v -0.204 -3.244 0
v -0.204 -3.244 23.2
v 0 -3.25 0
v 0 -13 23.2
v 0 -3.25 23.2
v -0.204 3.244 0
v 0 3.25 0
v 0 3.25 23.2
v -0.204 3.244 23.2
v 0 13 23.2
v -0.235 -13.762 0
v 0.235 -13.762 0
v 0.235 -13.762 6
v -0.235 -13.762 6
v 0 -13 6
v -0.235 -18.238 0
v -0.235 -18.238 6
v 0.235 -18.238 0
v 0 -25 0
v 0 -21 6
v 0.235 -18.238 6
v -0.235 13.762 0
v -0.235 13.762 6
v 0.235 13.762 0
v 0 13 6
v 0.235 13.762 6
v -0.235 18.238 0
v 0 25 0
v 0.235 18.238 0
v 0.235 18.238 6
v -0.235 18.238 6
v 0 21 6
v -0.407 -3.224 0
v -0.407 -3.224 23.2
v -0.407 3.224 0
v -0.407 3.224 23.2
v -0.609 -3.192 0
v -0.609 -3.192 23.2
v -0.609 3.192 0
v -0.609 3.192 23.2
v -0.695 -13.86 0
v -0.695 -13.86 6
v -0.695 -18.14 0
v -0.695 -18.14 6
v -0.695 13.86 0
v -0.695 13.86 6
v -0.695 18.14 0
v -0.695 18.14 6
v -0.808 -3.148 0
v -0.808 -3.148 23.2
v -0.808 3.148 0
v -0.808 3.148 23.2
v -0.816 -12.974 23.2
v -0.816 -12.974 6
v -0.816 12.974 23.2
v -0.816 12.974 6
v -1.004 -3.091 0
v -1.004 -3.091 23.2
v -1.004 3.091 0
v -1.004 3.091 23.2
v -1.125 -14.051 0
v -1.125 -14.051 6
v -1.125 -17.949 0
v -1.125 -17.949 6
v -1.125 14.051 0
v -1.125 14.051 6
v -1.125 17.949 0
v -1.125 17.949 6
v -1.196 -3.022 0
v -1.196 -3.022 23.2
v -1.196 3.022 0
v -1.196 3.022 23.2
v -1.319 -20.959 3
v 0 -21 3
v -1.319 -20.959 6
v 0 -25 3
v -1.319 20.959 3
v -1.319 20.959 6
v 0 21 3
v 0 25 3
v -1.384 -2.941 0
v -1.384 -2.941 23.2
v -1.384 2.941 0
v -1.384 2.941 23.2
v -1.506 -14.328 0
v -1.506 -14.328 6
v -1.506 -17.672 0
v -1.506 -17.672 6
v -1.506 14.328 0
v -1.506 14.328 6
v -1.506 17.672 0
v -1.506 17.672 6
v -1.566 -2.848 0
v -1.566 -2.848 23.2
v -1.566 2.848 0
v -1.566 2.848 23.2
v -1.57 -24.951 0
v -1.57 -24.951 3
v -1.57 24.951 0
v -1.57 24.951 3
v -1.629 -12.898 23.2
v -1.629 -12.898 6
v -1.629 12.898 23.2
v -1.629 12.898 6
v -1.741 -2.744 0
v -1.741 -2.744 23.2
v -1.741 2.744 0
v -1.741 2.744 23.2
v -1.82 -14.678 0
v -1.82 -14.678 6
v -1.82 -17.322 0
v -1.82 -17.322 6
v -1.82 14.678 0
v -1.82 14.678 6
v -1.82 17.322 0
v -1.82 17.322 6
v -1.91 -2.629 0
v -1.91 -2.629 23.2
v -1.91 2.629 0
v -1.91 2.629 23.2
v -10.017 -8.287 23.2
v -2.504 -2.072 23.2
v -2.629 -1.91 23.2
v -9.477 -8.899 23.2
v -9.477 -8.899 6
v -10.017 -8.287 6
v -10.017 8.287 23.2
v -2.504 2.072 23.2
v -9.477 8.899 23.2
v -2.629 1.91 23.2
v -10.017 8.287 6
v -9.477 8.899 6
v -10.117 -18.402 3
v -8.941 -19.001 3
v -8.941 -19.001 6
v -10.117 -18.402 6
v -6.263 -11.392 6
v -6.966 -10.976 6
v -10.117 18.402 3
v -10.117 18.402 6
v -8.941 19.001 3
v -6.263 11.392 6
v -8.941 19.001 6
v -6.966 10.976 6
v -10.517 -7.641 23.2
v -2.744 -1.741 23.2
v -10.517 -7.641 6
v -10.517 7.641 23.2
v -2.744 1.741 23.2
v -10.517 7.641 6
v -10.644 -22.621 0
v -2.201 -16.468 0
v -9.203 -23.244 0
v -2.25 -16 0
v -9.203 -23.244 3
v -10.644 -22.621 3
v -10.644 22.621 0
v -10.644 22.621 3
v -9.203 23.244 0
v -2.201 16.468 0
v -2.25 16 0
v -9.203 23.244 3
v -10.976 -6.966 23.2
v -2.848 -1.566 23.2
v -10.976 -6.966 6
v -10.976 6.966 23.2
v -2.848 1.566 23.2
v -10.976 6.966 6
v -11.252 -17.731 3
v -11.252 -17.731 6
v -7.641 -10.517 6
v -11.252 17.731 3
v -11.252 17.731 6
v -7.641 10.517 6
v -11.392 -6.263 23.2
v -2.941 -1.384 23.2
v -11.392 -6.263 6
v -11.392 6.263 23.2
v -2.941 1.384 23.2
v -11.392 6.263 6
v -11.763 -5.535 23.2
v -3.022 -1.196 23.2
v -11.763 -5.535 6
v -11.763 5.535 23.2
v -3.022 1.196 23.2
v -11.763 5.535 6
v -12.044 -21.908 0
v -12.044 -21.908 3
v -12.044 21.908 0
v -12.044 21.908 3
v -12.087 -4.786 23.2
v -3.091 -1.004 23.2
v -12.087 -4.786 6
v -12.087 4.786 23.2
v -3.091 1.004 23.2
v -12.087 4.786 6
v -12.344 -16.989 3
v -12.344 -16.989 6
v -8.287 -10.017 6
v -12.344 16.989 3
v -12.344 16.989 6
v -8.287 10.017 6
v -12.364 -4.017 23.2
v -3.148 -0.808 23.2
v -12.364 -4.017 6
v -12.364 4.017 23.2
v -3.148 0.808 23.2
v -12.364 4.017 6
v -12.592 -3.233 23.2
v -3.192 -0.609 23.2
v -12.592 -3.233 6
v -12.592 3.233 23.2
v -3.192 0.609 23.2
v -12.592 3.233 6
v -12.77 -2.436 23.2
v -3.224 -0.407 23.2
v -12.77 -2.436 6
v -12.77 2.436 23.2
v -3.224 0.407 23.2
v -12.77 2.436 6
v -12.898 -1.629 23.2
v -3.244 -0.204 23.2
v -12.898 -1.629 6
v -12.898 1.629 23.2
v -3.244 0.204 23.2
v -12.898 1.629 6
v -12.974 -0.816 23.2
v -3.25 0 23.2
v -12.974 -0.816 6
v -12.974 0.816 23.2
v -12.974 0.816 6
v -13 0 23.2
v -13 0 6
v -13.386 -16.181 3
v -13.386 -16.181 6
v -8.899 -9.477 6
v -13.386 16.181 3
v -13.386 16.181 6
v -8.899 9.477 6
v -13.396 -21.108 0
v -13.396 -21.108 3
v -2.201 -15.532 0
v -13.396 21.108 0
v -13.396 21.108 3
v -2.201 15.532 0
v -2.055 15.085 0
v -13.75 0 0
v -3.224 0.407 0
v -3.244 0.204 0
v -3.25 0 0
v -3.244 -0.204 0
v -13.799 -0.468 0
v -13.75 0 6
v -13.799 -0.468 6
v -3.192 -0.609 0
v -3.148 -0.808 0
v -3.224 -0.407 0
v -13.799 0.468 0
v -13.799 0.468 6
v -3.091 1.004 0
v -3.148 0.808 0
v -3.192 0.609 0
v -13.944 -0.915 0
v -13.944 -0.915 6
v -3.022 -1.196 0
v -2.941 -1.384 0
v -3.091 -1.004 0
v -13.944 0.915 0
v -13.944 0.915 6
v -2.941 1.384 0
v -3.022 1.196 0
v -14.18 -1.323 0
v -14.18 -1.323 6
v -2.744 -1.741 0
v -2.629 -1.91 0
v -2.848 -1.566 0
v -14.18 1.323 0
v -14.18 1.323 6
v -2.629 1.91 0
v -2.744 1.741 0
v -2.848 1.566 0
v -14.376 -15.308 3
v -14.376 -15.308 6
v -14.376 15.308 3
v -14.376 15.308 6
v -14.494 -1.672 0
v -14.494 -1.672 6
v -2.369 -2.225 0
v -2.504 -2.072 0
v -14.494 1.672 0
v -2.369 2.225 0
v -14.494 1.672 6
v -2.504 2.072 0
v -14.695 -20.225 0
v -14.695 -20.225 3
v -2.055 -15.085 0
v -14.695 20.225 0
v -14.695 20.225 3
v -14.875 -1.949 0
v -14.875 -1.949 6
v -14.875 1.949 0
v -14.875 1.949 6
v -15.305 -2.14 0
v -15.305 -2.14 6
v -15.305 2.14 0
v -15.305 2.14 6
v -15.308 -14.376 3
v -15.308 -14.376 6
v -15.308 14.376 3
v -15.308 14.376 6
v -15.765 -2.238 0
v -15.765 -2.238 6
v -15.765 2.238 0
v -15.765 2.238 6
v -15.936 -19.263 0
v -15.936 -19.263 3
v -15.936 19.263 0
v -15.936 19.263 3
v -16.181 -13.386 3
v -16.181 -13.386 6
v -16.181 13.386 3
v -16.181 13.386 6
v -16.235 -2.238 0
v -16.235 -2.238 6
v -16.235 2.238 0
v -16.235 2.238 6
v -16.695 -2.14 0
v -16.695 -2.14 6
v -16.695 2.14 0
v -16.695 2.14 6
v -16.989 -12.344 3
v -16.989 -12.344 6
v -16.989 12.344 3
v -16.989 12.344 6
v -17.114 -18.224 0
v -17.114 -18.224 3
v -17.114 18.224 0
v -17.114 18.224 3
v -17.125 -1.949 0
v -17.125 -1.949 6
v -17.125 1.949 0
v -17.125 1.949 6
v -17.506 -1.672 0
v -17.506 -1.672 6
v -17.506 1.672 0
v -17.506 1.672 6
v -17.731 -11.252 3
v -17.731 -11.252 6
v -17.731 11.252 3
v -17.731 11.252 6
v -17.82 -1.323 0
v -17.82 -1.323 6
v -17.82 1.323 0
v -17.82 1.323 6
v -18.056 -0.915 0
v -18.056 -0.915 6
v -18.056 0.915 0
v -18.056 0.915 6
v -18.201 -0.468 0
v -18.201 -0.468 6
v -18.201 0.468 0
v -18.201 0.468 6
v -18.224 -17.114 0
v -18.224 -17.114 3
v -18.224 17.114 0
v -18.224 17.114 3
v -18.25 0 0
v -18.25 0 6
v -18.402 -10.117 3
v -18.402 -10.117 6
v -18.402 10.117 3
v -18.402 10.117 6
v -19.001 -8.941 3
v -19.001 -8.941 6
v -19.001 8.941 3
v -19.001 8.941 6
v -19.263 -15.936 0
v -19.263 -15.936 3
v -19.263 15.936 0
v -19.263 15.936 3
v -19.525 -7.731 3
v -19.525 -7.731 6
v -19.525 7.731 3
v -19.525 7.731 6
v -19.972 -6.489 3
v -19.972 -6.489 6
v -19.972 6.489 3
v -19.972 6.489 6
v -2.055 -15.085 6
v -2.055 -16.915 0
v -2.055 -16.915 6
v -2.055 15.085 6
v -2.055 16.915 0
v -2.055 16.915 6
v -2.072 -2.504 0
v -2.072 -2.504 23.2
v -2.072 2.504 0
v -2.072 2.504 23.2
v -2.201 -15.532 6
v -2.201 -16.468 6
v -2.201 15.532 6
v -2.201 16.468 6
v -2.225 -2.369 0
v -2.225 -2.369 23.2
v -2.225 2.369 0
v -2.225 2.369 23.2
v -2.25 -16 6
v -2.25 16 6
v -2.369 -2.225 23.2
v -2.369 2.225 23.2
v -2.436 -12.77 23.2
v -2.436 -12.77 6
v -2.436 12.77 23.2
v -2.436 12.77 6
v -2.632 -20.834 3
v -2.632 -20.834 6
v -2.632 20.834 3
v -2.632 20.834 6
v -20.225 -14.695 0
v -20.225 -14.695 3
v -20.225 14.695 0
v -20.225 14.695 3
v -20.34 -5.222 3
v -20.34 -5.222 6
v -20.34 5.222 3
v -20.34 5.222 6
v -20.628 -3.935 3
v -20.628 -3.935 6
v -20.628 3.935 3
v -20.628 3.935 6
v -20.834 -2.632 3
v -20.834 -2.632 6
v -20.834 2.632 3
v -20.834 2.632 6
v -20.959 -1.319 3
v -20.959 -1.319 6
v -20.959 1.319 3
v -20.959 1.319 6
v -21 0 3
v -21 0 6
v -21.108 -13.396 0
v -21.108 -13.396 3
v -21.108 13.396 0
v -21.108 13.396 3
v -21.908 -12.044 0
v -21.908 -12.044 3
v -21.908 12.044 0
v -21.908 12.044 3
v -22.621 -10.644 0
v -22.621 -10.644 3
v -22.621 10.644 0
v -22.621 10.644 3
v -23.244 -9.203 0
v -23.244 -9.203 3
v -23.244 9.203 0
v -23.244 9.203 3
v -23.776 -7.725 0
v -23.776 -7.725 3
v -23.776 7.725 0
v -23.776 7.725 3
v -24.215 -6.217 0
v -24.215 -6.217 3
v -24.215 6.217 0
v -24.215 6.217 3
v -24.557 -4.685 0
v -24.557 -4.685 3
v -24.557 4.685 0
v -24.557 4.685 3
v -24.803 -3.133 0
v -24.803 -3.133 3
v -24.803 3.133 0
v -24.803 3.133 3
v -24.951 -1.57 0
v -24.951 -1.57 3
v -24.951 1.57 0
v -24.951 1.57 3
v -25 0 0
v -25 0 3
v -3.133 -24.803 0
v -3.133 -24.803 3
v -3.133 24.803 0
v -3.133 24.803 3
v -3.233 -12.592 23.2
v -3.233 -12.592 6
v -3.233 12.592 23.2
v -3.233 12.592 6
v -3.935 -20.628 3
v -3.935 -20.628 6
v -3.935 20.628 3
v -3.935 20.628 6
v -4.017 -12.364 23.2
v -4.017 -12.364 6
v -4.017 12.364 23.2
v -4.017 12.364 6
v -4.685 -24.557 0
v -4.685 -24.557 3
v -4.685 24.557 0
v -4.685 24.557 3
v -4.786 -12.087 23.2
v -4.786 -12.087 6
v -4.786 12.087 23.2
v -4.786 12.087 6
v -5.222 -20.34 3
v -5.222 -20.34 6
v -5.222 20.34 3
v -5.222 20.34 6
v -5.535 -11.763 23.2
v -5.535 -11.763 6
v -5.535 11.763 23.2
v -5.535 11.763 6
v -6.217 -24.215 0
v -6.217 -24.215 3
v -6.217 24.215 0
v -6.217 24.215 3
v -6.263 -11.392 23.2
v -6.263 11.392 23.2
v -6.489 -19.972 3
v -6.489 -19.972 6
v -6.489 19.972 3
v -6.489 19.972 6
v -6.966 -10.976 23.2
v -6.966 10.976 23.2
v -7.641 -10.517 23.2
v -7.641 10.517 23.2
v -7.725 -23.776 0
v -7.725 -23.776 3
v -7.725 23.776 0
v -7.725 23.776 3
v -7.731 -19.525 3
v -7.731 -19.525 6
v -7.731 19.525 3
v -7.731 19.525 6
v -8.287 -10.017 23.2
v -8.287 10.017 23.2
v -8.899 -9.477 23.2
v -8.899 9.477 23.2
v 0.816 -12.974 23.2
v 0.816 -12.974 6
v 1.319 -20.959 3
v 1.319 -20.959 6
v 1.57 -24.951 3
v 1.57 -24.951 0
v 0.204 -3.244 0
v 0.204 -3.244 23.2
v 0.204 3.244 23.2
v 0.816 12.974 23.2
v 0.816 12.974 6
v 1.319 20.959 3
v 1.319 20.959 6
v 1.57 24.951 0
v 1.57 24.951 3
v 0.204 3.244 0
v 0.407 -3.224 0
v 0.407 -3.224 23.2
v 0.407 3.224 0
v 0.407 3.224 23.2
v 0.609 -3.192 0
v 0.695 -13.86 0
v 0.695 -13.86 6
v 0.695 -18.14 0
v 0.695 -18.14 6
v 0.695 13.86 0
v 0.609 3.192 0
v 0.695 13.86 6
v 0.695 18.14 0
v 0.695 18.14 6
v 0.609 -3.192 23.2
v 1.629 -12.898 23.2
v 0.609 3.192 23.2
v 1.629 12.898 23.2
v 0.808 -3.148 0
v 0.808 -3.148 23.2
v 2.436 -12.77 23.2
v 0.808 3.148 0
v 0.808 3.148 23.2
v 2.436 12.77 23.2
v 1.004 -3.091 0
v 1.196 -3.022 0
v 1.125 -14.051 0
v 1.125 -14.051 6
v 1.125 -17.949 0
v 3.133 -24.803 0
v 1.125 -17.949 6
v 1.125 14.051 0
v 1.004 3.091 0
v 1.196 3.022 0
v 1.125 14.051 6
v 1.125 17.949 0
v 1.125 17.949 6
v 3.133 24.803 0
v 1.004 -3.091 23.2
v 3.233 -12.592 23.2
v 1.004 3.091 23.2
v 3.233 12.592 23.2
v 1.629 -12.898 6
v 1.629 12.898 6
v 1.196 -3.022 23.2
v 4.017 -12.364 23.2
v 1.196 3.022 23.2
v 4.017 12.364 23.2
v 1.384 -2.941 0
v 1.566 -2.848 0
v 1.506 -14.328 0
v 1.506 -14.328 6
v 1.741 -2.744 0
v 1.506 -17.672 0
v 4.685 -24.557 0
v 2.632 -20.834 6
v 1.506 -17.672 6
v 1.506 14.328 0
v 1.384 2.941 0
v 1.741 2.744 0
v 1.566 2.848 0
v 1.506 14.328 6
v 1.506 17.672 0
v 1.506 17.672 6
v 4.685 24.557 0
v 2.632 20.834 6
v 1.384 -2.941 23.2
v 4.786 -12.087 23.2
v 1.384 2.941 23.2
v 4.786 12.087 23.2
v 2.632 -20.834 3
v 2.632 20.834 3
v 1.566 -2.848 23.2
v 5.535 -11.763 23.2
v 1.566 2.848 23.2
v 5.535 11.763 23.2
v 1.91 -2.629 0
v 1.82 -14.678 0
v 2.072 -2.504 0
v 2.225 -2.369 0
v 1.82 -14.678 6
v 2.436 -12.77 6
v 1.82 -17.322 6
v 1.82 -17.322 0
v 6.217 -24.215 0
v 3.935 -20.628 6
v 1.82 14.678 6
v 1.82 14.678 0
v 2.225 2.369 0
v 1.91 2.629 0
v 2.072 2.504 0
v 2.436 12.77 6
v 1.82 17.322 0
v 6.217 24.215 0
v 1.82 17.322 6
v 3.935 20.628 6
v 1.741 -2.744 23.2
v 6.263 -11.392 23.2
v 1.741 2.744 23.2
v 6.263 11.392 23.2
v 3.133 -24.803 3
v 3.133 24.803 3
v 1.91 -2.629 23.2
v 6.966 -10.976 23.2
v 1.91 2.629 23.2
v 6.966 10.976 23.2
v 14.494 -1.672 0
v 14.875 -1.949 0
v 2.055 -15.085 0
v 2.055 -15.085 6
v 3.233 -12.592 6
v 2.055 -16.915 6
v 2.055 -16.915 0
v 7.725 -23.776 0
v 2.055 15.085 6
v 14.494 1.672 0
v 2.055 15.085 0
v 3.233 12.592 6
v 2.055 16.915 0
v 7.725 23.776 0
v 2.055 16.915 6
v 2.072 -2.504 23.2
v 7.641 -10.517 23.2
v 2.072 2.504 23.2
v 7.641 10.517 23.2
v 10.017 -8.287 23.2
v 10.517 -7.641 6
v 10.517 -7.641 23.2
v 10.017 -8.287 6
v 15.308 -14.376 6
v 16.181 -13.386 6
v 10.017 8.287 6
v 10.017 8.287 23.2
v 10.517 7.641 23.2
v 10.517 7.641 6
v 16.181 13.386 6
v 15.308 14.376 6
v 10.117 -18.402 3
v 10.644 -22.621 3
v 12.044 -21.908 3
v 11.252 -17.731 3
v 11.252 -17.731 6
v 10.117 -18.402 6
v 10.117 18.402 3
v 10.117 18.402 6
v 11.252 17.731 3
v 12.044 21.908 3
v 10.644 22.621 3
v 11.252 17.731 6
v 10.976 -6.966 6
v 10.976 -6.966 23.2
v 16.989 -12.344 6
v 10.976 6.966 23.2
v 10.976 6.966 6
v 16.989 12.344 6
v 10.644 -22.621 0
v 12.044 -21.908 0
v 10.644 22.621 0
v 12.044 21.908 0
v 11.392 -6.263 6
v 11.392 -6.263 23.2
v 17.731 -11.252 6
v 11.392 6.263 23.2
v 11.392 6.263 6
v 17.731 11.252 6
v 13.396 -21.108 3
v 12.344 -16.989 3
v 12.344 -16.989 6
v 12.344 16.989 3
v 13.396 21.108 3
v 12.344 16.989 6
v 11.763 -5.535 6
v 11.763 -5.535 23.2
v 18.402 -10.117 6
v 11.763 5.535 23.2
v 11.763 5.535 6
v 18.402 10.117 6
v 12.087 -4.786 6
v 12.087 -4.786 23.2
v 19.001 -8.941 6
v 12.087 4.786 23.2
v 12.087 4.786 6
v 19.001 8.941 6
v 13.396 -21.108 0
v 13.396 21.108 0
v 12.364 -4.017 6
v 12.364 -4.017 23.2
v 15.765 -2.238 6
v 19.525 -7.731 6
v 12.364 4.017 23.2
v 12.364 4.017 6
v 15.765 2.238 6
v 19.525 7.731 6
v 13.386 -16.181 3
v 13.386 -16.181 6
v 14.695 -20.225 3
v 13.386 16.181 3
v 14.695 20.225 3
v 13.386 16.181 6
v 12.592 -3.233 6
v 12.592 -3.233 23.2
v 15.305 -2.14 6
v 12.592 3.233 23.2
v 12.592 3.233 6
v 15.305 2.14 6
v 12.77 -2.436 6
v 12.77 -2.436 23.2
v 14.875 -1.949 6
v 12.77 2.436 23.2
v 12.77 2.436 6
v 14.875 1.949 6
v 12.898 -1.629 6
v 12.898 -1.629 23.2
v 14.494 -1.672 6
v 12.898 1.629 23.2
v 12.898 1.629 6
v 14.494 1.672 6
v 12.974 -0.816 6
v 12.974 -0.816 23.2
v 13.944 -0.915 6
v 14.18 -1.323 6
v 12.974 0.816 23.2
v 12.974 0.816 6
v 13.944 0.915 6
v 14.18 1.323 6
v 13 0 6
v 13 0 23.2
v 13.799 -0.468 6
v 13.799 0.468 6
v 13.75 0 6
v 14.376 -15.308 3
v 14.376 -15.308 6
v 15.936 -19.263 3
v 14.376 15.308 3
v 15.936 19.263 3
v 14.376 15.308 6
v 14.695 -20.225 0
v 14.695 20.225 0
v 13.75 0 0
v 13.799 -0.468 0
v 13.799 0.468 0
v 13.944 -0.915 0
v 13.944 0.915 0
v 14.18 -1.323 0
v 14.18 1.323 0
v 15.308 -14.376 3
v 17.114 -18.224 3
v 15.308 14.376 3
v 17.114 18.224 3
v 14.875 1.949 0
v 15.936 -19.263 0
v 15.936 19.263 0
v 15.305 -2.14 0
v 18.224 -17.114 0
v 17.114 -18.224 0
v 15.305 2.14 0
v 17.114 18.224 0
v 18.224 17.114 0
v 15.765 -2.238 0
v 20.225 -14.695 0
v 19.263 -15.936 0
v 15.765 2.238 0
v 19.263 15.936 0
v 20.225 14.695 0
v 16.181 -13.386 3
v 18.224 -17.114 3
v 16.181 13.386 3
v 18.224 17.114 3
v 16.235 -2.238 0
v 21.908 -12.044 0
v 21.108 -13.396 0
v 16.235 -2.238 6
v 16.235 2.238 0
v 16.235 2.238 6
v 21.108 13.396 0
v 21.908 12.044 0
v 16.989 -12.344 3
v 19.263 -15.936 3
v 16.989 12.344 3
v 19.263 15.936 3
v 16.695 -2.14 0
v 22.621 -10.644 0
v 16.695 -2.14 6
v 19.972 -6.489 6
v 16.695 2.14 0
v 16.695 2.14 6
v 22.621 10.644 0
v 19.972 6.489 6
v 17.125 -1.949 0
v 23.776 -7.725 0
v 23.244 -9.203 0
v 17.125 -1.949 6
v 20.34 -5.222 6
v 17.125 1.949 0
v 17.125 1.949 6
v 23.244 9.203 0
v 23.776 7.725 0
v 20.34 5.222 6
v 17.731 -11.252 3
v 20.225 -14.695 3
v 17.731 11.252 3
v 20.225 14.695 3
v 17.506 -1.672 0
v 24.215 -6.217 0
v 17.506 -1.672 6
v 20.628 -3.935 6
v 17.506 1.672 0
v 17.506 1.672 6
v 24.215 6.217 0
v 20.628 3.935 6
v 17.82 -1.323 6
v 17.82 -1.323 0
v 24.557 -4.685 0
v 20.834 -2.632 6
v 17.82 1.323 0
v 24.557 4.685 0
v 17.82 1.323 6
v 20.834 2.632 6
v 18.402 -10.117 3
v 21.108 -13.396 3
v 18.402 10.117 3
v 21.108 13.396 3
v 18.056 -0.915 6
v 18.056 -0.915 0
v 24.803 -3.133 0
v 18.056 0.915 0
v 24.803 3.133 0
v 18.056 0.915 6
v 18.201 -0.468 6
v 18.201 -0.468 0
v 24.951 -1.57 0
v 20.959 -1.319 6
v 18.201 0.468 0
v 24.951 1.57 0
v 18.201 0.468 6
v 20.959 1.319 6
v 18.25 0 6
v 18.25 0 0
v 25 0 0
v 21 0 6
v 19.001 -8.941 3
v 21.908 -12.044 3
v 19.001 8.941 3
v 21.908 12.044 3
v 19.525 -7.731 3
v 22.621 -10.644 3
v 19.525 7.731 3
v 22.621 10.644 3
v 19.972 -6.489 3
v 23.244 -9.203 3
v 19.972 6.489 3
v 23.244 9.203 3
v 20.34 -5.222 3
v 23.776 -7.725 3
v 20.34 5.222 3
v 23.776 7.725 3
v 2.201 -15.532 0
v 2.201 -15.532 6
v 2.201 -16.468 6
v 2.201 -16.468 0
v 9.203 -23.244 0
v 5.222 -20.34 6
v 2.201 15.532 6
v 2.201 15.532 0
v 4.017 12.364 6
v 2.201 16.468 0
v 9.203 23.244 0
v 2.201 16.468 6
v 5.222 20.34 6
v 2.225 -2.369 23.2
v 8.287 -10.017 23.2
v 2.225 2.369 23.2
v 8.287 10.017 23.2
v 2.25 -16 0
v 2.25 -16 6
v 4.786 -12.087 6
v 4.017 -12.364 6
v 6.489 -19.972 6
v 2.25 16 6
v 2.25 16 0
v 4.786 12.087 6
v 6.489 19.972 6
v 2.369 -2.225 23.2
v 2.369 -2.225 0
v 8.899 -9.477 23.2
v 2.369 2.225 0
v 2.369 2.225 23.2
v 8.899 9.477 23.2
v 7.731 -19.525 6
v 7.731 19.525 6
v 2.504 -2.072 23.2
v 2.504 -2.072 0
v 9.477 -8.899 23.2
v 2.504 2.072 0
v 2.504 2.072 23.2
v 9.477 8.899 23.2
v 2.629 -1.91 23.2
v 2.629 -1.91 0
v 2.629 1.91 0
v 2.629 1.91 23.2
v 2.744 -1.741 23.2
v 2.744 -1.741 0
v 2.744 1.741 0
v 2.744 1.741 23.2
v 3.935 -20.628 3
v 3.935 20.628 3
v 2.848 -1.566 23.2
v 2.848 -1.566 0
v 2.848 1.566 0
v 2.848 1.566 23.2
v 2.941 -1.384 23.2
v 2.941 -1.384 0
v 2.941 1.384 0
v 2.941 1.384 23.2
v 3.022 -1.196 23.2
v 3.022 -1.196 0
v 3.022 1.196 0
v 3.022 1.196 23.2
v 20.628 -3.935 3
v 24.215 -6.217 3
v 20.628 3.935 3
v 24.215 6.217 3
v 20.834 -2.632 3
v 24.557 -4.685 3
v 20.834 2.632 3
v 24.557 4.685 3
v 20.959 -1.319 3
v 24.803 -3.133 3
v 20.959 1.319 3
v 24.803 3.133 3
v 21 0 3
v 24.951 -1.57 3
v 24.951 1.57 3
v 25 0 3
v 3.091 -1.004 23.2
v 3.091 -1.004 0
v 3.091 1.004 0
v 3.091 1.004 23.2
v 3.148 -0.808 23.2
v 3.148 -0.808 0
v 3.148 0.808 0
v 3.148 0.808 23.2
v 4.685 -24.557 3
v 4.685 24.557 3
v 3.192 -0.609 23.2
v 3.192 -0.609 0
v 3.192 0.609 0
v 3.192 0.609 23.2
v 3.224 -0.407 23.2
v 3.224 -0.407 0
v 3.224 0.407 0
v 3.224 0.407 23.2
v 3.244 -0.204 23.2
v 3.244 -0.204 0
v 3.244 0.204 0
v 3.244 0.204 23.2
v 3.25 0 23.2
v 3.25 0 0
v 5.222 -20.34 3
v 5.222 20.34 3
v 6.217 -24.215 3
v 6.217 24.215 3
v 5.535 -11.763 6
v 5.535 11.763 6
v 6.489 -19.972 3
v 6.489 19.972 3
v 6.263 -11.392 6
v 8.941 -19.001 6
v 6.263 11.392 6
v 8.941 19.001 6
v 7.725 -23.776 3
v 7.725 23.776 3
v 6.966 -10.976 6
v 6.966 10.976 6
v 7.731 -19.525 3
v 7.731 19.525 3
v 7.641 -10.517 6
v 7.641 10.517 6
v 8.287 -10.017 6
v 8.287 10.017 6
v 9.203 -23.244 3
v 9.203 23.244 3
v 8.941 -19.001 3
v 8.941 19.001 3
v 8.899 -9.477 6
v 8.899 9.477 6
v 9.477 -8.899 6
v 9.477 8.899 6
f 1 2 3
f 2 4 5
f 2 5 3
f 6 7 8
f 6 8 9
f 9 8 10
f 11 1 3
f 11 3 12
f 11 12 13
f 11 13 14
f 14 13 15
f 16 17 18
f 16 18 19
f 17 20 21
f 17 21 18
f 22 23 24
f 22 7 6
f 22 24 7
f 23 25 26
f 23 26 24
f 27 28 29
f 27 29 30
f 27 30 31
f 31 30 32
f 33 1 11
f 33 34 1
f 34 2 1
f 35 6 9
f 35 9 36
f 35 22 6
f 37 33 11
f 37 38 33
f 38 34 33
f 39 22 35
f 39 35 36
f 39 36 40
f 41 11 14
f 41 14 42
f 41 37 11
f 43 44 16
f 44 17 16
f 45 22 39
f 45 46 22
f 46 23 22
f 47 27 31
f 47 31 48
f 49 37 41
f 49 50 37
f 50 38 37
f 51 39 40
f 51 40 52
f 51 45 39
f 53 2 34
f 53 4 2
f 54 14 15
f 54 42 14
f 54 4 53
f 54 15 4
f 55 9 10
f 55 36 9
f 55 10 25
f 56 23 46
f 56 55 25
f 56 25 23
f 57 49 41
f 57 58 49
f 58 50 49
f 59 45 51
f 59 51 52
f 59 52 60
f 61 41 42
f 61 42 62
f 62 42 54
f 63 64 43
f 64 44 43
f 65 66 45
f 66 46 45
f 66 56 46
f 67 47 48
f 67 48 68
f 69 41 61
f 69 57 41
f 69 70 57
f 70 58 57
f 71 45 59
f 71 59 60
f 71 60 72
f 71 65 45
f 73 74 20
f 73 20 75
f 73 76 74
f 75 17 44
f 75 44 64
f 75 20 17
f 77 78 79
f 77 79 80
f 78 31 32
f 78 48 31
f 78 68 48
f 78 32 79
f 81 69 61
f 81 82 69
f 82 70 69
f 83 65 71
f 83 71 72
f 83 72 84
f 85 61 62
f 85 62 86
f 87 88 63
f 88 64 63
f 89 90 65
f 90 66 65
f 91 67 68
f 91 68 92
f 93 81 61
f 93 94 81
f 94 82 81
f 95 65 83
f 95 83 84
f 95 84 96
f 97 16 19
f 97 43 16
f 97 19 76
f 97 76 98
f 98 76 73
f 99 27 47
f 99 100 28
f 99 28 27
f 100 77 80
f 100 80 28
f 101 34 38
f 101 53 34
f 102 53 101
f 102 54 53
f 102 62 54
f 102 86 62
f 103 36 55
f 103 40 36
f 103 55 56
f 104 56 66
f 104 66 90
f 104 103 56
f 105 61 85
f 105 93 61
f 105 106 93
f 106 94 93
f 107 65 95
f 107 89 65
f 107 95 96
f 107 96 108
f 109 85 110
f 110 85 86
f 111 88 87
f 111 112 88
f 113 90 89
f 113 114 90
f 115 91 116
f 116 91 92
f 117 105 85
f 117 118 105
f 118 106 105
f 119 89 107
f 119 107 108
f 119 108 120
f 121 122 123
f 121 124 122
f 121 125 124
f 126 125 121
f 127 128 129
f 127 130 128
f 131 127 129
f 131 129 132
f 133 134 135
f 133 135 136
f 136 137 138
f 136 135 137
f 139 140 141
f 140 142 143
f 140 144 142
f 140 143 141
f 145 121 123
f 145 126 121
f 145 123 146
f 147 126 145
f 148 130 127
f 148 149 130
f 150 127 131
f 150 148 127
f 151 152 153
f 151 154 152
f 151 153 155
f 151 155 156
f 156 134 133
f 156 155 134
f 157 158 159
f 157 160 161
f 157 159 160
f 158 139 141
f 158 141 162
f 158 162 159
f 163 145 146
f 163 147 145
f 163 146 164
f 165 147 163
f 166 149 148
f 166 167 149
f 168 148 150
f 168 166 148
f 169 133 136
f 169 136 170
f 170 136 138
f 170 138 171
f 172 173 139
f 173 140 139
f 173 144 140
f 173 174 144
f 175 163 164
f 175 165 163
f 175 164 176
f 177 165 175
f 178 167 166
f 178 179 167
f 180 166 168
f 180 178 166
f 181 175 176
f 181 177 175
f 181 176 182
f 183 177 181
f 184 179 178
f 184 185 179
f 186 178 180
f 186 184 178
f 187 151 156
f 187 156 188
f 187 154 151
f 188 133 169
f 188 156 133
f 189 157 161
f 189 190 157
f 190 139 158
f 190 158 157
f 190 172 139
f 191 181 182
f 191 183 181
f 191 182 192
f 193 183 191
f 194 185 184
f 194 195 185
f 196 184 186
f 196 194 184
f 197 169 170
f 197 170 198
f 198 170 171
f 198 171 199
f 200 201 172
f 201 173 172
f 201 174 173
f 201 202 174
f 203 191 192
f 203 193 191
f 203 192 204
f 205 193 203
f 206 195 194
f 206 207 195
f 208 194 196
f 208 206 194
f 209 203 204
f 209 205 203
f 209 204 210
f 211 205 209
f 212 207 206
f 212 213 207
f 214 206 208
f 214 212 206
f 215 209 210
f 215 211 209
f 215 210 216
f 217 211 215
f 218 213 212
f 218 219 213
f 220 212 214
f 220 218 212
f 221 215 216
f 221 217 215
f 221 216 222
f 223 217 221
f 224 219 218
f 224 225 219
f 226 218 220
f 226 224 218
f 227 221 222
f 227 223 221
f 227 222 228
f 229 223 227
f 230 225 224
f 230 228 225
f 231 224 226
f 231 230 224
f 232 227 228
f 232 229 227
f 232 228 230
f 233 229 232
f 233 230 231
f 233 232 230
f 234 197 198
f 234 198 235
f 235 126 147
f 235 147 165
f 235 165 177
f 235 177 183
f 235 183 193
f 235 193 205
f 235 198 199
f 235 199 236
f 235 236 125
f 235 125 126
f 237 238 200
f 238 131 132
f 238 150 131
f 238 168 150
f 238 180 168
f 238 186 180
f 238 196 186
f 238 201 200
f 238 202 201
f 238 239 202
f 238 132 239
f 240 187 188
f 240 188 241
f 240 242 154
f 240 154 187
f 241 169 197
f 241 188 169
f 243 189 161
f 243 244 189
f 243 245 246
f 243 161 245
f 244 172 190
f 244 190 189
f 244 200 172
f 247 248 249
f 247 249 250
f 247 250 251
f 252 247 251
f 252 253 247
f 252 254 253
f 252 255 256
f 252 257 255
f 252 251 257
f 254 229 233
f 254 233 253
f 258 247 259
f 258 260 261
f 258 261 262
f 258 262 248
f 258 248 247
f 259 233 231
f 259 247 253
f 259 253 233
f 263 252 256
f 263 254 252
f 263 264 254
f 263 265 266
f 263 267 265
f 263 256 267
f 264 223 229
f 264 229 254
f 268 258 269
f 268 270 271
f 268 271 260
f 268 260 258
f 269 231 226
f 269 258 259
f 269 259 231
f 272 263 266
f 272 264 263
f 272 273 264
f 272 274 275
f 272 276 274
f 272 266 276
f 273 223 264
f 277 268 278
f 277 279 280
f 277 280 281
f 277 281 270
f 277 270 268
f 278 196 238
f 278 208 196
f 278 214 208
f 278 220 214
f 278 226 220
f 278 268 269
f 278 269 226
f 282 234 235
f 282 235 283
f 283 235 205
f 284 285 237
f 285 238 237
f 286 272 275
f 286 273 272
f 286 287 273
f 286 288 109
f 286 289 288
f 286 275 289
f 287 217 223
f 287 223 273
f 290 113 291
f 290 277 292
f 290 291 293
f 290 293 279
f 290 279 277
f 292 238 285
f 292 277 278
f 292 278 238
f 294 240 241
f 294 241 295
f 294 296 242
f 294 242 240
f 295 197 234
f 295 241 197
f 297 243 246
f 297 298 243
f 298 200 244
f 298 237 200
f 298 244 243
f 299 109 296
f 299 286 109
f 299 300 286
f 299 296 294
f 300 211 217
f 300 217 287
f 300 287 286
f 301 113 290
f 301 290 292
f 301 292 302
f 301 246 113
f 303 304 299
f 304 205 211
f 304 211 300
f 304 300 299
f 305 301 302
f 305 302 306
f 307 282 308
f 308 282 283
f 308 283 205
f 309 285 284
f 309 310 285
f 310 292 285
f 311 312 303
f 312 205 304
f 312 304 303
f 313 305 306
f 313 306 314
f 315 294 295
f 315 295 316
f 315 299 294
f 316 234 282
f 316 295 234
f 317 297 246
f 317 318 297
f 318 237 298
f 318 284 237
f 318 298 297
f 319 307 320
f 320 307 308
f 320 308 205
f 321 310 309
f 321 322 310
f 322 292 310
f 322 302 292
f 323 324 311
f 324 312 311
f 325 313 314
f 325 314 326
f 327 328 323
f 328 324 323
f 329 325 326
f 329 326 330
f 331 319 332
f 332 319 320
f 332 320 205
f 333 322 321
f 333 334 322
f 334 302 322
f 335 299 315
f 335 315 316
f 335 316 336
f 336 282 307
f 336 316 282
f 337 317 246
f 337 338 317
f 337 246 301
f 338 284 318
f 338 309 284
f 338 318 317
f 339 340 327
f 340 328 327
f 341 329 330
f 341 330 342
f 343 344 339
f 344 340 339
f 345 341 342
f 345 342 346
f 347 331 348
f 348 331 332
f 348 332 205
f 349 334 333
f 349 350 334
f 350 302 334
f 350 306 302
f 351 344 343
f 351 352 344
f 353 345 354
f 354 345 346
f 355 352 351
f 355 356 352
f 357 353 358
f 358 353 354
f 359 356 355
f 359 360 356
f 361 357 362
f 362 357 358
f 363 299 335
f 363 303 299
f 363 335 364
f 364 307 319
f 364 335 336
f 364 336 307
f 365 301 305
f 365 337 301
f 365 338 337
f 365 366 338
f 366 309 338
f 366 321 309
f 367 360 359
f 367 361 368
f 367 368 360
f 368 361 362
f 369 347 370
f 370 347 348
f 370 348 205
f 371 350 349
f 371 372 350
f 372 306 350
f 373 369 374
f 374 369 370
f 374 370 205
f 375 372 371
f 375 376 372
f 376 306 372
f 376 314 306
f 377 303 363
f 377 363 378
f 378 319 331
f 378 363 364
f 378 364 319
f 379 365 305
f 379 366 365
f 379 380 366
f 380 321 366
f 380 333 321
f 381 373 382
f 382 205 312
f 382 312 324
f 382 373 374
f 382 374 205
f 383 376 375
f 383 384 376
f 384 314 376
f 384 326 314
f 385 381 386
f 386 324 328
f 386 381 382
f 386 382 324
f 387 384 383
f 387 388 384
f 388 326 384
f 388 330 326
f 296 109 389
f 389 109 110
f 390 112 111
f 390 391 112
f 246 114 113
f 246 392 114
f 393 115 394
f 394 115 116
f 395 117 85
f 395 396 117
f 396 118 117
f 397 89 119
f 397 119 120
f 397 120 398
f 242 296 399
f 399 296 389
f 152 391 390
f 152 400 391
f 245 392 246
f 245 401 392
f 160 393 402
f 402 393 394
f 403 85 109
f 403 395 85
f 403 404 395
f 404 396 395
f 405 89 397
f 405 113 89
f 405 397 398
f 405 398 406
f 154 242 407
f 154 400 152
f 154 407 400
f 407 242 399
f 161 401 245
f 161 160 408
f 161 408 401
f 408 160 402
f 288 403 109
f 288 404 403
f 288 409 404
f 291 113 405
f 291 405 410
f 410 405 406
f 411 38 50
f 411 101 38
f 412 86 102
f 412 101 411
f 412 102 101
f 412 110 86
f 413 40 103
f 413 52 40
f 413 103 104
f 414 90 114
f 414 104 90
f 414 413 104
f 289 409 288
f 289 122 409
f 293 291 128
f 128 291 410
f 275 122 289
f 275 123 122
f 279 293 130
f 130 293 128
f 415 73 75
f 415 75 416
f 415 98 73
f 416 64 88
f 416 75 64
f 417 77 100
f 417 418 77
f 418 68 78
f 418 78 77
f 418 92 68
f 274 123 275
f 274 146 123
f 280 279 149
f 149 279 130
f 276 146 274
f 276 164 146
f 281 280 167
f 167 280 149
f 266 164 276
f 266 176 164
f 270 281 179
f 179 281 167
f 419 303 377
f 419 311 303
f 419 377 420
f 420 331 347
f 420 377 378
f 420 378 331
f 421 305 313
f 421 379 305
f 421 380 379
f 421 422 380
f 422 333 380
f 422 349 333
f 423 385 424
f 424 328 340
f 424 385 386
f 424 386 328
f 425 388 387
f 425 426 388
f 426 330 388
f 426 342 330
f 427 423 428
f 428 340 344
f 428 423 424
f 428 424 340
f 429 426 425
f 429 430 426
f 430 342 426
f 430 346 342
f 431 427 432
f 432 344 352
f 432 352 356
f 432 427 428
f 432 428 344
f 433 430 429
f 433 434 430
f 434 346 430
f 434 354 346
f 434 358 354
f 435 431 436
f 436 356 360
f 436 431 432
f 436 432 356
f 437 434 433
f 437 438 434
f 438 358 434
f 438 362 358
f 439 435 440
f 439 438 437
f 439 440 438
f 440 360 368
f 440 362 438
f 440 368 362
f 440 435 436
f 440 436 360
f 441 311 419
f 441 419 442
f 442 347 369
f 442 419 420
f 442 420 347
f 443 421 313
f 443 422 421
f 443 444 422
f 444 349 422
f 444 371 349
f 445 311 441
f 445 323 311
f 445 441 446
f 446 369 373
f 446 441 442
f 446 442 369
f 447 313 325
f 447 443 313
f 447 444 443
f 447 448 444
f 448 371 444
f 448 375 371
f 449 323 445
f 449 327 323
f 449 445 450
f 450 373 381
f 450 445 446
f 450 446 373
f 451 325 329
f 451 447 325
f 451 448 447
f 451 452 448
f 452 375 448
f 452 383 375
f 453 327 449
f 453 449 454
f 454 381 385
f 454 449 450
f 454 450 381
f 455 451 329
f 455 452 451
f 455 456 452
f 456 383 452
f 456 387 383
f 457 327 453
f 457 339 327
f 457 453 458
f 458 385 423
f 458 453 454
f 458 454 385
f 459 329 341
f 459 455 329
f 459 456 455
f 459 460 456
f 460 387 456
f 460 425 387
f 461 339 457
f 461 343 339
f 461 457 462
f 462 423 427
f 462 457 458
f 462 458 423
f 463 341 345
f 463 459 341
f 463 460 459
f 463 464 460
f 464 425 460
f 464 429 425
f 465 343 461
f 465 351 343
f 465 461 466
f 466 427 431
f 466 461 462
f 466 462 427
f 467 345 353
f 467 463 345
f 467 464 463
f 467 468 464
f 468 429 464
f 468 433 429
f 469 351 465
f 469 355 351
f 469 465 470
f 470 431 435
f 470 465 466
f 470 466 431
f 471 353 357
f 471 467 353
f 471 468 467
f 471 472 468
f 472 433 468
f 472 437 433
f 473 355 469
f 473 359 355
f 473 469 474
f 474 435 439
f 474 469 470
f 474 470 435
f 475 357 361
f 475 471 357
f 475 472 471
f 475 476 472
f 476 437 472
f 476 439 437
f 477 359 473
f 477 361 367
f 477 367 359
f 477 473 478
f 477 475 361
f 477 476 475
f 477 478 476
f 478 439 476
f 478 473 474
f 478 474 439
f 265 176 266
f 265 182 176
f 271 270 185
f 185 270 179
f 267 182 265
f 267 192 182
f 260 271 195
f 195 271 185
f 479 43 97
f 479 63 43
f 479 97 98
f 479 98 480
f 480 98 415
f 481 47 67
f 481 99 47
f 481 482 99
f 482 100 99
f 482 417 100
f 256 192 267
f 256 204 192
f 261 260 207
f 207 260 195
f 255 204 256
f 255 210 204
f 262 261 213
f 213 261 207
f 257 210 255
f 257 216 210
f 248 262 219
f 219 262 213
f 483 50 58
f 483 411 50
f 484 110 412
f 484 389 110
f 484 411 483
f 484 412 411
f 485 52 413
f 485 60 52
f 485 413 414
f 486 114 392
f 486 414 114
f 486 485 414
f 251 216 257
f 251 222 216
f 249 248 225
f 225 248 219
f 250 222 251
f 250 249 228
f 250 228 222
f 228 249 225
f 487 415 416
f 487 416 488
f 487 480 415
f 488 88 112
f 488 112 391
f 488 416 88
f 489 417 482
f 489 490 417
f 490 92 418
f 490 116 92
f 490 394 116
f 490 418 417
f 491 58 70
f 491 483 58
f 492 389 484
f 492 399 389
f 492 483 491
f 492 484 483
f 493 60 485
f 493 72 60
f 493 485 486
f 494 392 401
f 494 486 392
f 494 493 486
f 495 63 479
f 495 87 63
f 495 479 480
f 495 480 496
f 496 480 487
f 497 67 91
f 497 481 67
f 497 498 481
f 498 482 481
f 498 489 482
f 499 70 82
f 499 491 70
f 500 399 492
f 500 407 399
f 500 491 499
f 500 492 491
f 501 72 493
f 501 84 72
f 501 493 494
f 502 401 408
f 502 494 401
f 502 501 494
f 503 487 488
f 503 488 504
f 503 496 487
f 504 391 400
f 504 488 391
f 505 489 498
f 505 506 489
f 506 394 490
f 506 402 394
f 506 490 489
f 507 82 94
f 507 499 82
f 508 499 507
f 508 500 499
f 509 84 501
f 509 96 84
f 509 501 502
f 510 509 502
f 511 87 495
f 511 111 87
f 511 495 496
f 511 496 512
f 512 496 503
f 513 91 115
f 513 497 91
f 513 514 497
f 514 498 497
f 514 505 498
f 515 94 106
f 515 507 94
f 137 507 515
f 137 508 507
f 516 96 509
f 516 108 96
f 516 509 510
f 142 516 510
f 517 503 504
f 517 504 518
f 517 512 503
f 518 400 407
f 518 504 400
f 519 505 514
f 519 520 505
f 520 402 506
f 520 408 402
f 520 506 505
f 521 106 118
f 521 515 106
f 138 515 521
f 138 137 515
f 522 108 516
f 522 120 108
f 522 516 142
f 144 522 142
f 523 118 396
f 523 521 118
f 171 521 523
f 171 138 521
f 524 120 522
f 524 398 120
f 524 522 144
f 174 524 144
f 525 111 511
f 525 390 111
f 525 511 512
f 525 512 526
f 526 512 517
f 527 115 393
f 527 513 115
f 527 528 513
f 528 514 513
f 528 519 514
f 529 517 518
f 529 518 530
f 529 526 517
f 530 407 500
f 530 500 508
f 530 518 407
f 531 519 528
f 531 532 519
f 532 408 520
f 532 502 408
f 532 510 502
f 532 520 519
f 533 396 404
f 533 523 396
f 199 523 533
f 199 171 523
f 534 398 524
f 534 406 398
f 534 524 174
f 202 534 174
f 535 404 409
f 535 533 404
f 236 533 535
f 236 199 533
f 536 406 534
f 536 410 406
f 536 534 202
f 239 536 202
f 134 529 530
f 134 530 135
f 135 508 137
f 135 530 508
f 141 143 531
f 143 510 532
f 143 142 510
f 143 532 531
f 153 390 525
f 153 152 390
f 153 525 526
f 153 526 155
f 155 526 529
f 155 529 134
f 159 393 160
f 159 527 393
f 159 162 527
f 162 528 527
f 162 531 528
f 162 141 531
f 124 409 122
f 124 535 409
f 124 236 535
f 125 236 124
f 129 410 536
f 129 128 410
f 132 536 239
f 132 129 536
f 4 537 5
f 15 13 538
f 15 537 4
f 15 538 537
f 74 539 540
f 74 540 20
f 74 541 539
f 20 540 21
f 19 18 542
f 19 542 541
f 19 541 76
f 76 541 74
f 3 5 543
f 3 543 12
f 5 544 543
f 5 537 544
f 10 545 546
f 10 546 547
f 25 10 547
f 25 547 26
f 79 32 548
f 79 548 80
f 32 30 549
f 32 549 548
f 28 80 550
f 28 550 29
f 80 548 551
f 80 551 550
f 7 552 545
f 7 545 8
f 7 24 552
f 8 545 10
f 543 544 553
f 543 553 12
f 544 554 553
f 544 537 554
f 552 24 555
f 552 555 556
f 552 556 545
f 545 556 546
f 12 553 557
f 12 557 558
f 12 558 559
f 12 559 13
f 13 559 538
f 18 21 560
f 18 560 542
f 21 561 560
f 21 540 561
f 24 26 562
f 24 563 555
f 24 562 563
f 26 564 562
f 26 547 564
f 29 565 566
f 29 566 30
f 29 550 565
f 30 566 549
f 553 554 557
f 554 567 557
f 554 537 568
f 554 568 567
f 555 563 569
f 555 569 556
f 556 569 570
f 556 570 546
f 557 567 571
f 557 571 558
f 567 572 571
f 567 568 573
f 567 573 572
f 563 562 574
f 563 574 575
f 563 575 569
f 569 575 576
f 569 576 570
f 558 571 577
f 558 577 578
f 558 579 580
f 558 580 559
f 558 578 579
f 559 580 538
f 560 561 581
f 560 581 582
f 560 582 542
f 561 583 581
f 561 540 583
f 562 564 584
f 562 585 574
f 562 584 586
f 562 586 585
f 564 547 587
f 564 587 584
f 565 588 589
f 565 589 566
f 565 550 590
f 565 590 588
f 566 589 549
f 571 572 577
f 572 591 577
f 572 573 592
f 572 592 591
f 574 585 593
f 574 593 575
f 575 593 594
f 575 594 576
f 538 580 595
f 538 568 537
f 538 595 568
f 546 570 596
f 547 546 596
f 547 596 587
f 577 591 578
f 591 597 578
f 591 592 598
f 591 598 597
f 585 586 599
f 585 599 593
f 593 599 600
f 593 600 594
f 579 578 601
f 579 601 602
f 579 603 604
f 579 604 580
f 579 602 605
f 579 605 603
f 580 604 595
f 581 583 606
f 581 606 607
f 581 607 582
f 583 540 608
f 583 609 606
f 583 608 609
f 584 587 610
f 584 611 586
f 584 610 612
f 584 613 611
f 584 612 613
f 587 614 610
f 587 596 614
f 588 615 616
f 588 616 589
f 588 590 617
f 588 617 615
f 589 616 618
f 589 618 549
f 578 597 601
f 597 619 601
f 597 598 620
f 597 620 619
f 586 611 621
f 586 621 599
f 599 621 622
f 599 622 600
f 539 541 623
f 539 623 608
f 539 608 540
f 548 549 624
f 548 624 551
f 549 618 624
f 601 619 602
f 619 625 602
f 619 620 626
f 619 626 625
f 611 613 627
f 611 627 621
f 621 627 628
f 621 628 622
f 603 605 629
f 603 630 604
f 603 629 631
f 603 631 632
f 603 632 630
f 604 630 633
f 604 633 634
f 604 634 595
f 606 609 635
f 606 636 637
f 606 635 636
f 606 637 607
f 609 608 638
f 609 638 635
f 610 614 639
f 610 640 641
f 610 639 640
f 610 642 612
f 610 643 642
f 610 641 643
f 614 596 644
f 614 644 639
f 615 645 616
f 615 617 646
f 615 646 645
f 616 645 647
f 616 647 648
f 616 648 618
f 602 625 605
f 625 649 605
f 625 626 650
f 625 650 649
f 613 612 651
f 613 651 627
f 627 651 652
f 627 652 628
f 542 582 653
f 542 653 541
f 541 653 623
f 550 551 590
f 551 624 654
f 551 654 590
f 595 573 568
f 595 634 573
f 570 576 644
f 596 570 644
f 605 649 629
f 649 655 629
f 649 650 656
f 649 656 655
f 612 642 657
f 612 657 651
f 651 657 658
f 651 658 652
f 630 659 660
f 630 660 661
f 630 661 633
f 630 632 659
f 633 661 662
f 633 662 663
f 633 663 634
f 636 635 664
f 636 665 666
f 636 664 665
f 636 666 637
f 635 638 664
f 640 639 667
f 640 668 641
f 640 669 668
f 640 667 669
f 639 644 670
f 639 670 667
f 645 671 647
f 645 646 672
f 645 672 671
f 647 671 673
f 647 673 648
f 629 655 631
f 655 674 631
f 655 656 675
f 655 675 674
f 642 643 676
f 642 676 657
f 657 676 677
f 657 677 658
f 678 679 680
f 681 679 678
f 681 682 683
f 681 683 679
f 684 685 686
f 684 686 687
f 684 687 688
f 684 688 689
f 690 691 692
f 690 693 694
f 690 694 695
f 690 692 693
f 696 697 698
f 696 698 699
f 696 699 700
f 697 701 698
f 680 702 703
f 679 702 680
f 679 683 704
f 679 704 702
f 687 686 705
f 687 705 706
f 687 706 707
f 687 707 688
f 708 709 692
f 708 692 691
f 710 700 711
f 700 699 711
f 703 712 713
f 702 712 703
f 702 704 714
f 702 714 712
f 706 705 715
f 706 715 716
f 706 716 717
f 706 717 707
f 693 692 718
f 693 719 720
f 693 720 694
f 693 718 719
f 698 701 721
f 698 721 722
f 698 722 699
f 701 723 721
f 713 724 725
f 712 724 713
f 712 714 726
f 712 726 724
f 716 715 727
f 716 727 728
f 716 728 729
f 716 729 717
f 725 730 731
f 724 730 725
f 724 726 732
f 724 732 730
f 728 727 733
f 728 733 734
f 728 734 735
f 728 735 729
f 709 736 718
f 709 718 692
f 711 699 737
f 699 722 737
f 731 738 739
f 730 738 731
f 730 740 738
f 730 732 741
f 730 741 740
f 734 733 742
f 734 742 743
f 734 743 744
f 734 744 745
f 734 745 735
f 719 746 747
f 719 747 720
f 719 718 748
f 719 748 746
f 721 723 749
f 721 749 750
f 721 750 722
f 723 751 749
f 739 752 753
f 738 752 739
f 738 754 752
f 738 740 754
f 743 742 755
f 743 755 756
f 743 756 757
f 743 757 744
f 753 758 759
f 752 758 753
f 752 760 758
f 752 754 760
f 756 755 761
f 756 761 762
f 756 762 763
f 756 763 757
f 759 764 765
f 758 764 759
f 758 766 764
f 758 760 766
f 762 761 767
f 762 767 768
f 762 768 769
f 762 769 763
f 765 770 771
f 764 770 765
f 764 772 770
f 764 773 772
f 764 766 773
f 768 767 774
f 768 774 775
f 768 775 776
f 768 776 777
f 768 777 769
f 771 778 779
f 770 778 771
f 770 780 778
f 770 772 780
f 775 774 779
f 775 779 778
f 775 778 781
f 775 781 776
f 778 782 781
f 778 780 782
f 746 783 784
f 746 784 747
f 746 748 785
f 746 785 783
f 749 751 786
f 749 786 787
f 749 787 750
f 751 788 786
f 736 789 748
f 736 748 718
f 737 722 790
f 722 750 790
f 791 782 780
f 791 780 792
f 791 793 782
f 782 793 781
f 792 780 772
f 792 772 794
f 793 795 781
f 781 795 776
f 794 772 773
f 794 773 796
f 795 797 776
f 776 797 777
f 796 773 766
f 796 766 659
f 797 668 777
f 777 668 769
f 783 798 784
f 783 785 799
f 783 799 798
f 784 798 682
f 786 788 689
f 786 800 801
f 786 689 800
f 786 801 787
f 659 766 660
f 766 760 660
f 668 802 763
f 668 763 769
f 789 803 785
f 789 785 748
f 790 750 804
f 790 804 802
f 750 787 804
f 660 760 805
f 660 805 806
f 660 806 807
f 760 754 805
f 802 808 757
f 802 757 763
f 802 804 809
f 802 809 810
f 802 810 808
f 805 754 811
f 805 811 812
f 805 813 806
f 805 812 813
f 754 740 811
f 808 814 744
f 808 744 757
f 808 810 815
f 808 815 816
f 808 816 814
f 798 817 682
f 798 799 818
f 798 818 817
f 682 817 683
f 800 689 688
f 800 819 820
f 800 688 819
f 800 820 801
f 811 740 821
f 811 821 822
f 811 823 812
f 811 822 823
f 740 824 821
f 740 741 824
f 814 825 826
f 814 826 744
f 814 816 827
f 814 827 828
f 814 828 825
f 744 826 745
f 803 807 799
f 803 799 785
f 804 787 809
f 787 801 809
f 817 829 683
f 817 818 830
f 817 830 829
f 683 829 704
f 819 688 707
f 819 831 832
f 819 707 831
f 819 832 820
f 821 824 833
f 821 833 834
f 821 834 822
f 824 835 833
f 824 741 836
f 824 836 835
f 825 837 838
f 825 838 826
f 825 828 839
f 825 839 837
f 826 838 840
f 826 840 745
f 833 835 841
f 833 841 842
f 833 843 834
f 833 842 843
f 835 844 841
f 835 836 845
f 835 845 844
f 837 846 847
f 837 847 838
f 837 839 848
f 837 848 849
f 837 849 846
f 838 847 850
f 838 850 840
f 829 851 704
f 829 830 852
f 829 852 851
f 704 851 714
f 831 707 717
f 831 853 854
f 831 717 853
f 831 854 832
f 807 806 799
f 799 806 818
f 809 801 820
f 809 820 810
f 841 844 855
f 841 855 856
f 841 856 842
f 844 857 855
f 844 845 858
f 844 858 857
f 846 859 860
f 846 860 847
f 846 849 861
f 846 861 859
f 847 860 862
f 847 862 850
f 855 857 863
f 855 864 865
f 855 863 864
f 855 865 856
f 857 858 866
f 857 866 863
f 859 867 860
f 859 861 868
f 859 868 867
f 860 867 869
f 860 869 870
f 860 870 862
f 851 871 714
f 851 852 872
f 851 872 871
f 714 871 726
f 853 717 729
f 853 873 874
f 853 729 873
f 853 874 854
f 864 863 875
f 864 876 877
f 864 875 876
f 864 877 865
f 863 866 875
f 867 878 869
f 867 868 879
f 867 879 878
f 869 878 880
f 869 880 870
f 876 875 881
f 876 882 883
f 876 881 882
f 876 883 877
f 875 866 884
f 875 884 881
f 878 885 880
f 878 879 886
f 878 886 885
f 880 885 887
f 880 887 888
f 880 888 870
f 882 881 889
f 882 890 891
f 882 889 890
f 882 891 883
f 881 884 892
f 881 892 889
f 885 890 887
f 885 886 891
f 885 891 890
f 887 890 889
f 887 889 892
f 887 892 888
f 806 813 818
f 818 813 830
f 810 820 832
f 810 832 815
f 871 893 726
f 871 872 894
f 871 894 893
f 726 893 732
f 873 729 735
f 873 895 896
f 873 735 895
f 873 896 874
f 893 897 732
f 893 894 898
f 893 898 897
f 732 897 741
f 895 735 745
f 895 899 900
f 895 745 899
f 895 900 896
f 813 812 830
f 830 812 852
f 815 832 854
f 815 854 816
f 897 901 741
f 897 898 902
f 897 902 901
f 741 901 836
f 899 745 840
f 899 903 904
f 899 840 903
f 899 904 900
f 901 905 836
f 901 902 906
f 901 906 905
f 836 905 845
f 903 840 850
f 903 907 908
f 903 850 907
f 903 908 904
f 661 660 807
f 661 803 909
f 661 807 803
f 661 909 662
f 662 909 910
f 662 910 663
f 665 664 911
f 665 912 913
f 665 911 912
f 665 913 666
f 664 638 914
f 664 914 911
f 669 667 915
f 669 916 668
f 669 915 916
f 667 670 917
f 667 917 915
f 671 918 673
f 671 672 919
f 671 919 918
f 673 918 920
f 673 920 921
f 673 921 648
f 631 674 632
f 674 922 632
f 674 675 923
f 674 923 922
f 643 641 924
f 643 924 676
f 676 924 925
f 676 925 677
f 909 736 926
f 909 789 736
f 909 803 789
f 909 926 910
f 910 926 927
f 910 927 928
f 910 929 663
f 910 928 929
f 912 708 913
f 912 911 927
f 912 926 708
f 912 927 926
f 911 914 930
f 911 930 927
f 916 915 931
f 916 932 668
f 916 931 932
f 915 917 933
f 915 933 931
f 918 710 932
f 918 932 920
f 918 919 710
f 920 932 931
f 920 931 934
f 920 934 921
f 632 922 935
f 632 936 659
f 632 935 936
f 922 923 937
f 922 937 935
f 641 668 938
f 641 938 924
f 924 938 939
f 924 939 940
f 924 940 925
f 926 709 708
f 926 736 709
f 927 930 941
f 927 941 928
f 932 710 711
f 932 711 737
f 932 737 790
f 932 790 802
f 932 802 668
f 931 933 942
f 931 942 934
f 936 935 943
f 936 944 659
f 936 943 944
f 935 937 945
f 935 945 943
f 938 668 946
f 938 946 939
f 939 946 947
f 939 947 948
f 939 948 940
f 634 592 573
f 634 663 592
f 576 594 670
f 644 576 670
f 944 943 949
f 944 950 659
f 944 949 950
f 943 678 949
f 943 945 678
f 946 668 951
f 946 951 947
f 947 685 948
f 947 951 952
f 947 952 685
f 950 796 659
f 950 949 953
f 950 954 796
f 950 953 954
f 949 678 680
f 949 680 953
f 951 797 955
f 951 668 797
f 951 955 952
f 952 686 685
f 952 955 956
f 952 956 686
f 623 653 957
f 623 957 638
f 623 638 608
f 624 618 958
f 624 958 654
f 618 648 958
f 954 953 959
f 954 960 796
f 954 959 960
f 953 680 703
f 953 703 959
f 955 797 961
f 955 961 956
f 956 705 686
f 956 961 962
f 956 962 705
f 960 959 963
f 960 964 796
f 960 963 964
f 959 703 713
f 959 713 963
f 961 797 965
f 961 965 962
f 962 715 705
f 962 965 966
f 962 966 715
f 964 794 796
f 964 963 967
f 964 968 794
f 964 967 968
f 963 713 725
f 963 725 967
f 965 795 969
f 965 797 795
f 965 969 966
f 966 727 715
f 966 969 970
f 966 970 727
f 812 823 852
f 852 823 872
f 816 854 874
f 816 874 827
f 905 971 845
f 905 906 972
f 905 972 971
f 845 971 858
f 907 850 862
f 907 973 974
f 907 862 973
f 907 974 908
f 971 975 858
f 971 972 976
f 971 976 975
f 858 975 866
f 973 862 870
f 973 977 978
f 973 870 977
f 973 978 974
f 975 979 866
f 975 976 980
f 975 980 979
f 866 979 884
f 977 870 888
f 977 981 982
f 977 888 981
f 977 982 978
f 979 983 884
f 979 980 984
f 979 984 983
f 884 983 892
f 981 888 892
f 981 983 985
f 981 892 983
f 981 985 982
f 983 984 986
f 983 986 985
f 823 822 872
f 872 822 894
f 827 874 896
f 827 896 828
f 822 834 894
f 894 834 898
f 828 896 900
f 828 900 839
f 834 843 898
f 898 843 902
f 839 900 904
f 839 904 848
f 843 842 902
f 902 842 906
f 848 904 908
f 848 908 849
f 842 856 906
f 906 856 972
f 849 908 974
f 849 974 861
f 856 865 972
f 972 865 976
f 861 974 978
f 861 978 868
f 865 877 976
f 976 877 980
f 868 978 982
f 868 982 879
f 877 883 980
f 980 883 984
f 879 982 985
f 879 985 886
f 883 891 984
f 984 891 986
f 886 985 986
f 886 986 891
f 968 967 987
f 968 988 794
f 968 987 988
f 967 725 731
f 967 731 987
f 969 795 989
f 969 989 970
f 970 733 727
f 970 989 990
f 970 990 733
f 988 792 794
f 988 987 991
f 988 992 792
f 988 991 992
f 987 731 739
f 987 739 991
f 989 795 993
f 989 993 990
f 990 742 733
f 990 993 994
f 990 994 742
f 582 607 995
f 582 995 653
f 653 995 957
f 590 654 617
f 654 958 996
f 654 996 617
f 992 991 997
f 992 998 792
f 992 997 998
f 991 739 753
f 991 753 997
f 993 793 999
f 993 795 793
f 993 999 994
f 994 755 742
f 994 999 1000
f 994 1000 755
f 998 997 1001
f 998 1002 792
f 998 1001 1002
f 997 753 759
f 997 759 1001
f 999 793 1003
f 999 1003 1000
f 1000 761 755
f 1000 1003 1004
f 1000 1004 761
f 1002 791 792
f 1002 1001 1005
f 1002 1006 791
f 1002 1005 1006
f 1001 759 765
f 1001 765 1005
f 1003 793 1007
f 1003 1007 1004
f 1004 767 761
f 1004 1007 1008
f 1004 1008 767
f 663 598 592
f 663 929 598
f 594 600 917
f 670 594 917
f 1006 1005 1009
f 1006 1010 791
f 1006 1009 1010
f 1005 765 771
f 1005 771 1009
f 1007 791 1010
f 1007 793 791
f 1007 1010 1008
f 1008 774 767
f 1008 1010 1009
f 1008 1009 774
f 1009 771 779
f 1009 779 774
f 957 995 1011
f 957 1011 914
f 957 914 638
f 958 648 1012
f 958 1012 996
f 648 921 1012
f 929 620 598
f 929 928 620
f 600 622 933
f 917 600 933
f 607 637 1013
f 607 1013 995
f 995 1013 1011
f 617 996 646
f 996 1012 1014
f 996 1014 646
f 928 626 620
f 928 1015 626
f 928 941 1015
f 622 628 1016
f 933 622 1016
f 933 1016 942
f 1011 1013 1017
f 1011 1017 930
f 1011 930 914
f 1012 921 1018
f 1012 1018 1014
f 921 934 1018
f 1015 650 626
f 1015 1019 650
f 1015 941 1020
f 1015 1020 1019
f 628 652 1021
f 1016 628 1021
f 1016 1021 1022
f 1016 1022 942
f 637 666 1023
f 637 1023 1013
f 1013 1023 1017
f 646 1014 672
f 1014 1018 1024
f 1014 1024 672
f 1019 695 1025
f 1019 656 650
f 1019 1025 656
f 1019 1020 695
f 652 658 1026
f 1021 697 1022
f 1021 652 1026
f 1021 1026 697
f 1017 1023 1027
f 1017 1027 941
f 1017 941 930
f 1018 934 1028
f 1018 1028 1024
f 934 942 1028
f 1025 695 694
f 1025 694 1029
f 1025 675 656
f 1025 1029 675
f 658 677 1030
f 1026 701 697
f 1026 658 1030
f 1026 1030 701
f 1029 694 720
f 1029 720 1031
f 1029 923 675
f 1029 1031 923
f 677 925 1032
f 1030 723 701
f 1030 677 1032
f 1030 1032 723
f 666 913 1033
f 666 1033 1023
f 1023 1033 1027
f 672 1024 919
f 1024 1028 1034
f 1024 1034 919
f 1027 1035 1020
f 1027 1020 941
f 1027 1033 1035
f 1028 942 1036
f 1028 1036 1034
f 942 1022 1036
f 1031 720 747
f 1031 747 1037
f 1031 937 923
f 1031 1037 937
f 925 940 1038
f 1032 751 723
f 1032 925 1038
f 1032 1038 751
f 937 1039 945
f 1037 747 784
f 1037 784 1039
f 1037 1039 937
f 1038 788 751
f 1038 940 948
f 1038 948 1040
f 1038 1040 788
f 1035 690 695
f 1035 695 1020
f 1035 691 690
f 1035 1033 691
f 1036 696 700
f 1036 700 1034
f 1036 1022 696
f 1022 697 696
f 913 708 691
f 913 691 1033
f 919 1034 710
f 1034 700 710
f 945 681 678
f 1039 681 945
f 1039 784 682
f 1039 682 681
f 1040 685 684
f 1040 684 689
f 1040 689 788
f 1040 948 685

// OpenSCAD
//
//   Pripravek pro testovani vzdalenosti remenic na rotoru
//    vklada se do velkeho ozubeneho kola
//

include <../../parameters.scad>
$fn = 100;

difference(){

    union(){
        cylinder(d=26, h=20.2+3);
        cylinder(d=42, h=3+3);
        cylinder(d=50, h=3);
    }

    cylinder(d=M6_screw_diameter, h=25);


    translate([-32/2, 0, 0])
        cylinder(h = 20, d = M4_screw_diameter, $fn = 30);

    translate([32/2, 0, 0])
        cylinder(h = 20, d = M4_screw_diameter, $fn = 30);

    translate([0, 32/2, 0])
        cylinder(h = 20, d = M4_screw_diameter, $fn = 30);

    translate([0, -32/2, 0])
        cylinder(h = 20, d = M4_screw_diameter, $fn = 30);

}
